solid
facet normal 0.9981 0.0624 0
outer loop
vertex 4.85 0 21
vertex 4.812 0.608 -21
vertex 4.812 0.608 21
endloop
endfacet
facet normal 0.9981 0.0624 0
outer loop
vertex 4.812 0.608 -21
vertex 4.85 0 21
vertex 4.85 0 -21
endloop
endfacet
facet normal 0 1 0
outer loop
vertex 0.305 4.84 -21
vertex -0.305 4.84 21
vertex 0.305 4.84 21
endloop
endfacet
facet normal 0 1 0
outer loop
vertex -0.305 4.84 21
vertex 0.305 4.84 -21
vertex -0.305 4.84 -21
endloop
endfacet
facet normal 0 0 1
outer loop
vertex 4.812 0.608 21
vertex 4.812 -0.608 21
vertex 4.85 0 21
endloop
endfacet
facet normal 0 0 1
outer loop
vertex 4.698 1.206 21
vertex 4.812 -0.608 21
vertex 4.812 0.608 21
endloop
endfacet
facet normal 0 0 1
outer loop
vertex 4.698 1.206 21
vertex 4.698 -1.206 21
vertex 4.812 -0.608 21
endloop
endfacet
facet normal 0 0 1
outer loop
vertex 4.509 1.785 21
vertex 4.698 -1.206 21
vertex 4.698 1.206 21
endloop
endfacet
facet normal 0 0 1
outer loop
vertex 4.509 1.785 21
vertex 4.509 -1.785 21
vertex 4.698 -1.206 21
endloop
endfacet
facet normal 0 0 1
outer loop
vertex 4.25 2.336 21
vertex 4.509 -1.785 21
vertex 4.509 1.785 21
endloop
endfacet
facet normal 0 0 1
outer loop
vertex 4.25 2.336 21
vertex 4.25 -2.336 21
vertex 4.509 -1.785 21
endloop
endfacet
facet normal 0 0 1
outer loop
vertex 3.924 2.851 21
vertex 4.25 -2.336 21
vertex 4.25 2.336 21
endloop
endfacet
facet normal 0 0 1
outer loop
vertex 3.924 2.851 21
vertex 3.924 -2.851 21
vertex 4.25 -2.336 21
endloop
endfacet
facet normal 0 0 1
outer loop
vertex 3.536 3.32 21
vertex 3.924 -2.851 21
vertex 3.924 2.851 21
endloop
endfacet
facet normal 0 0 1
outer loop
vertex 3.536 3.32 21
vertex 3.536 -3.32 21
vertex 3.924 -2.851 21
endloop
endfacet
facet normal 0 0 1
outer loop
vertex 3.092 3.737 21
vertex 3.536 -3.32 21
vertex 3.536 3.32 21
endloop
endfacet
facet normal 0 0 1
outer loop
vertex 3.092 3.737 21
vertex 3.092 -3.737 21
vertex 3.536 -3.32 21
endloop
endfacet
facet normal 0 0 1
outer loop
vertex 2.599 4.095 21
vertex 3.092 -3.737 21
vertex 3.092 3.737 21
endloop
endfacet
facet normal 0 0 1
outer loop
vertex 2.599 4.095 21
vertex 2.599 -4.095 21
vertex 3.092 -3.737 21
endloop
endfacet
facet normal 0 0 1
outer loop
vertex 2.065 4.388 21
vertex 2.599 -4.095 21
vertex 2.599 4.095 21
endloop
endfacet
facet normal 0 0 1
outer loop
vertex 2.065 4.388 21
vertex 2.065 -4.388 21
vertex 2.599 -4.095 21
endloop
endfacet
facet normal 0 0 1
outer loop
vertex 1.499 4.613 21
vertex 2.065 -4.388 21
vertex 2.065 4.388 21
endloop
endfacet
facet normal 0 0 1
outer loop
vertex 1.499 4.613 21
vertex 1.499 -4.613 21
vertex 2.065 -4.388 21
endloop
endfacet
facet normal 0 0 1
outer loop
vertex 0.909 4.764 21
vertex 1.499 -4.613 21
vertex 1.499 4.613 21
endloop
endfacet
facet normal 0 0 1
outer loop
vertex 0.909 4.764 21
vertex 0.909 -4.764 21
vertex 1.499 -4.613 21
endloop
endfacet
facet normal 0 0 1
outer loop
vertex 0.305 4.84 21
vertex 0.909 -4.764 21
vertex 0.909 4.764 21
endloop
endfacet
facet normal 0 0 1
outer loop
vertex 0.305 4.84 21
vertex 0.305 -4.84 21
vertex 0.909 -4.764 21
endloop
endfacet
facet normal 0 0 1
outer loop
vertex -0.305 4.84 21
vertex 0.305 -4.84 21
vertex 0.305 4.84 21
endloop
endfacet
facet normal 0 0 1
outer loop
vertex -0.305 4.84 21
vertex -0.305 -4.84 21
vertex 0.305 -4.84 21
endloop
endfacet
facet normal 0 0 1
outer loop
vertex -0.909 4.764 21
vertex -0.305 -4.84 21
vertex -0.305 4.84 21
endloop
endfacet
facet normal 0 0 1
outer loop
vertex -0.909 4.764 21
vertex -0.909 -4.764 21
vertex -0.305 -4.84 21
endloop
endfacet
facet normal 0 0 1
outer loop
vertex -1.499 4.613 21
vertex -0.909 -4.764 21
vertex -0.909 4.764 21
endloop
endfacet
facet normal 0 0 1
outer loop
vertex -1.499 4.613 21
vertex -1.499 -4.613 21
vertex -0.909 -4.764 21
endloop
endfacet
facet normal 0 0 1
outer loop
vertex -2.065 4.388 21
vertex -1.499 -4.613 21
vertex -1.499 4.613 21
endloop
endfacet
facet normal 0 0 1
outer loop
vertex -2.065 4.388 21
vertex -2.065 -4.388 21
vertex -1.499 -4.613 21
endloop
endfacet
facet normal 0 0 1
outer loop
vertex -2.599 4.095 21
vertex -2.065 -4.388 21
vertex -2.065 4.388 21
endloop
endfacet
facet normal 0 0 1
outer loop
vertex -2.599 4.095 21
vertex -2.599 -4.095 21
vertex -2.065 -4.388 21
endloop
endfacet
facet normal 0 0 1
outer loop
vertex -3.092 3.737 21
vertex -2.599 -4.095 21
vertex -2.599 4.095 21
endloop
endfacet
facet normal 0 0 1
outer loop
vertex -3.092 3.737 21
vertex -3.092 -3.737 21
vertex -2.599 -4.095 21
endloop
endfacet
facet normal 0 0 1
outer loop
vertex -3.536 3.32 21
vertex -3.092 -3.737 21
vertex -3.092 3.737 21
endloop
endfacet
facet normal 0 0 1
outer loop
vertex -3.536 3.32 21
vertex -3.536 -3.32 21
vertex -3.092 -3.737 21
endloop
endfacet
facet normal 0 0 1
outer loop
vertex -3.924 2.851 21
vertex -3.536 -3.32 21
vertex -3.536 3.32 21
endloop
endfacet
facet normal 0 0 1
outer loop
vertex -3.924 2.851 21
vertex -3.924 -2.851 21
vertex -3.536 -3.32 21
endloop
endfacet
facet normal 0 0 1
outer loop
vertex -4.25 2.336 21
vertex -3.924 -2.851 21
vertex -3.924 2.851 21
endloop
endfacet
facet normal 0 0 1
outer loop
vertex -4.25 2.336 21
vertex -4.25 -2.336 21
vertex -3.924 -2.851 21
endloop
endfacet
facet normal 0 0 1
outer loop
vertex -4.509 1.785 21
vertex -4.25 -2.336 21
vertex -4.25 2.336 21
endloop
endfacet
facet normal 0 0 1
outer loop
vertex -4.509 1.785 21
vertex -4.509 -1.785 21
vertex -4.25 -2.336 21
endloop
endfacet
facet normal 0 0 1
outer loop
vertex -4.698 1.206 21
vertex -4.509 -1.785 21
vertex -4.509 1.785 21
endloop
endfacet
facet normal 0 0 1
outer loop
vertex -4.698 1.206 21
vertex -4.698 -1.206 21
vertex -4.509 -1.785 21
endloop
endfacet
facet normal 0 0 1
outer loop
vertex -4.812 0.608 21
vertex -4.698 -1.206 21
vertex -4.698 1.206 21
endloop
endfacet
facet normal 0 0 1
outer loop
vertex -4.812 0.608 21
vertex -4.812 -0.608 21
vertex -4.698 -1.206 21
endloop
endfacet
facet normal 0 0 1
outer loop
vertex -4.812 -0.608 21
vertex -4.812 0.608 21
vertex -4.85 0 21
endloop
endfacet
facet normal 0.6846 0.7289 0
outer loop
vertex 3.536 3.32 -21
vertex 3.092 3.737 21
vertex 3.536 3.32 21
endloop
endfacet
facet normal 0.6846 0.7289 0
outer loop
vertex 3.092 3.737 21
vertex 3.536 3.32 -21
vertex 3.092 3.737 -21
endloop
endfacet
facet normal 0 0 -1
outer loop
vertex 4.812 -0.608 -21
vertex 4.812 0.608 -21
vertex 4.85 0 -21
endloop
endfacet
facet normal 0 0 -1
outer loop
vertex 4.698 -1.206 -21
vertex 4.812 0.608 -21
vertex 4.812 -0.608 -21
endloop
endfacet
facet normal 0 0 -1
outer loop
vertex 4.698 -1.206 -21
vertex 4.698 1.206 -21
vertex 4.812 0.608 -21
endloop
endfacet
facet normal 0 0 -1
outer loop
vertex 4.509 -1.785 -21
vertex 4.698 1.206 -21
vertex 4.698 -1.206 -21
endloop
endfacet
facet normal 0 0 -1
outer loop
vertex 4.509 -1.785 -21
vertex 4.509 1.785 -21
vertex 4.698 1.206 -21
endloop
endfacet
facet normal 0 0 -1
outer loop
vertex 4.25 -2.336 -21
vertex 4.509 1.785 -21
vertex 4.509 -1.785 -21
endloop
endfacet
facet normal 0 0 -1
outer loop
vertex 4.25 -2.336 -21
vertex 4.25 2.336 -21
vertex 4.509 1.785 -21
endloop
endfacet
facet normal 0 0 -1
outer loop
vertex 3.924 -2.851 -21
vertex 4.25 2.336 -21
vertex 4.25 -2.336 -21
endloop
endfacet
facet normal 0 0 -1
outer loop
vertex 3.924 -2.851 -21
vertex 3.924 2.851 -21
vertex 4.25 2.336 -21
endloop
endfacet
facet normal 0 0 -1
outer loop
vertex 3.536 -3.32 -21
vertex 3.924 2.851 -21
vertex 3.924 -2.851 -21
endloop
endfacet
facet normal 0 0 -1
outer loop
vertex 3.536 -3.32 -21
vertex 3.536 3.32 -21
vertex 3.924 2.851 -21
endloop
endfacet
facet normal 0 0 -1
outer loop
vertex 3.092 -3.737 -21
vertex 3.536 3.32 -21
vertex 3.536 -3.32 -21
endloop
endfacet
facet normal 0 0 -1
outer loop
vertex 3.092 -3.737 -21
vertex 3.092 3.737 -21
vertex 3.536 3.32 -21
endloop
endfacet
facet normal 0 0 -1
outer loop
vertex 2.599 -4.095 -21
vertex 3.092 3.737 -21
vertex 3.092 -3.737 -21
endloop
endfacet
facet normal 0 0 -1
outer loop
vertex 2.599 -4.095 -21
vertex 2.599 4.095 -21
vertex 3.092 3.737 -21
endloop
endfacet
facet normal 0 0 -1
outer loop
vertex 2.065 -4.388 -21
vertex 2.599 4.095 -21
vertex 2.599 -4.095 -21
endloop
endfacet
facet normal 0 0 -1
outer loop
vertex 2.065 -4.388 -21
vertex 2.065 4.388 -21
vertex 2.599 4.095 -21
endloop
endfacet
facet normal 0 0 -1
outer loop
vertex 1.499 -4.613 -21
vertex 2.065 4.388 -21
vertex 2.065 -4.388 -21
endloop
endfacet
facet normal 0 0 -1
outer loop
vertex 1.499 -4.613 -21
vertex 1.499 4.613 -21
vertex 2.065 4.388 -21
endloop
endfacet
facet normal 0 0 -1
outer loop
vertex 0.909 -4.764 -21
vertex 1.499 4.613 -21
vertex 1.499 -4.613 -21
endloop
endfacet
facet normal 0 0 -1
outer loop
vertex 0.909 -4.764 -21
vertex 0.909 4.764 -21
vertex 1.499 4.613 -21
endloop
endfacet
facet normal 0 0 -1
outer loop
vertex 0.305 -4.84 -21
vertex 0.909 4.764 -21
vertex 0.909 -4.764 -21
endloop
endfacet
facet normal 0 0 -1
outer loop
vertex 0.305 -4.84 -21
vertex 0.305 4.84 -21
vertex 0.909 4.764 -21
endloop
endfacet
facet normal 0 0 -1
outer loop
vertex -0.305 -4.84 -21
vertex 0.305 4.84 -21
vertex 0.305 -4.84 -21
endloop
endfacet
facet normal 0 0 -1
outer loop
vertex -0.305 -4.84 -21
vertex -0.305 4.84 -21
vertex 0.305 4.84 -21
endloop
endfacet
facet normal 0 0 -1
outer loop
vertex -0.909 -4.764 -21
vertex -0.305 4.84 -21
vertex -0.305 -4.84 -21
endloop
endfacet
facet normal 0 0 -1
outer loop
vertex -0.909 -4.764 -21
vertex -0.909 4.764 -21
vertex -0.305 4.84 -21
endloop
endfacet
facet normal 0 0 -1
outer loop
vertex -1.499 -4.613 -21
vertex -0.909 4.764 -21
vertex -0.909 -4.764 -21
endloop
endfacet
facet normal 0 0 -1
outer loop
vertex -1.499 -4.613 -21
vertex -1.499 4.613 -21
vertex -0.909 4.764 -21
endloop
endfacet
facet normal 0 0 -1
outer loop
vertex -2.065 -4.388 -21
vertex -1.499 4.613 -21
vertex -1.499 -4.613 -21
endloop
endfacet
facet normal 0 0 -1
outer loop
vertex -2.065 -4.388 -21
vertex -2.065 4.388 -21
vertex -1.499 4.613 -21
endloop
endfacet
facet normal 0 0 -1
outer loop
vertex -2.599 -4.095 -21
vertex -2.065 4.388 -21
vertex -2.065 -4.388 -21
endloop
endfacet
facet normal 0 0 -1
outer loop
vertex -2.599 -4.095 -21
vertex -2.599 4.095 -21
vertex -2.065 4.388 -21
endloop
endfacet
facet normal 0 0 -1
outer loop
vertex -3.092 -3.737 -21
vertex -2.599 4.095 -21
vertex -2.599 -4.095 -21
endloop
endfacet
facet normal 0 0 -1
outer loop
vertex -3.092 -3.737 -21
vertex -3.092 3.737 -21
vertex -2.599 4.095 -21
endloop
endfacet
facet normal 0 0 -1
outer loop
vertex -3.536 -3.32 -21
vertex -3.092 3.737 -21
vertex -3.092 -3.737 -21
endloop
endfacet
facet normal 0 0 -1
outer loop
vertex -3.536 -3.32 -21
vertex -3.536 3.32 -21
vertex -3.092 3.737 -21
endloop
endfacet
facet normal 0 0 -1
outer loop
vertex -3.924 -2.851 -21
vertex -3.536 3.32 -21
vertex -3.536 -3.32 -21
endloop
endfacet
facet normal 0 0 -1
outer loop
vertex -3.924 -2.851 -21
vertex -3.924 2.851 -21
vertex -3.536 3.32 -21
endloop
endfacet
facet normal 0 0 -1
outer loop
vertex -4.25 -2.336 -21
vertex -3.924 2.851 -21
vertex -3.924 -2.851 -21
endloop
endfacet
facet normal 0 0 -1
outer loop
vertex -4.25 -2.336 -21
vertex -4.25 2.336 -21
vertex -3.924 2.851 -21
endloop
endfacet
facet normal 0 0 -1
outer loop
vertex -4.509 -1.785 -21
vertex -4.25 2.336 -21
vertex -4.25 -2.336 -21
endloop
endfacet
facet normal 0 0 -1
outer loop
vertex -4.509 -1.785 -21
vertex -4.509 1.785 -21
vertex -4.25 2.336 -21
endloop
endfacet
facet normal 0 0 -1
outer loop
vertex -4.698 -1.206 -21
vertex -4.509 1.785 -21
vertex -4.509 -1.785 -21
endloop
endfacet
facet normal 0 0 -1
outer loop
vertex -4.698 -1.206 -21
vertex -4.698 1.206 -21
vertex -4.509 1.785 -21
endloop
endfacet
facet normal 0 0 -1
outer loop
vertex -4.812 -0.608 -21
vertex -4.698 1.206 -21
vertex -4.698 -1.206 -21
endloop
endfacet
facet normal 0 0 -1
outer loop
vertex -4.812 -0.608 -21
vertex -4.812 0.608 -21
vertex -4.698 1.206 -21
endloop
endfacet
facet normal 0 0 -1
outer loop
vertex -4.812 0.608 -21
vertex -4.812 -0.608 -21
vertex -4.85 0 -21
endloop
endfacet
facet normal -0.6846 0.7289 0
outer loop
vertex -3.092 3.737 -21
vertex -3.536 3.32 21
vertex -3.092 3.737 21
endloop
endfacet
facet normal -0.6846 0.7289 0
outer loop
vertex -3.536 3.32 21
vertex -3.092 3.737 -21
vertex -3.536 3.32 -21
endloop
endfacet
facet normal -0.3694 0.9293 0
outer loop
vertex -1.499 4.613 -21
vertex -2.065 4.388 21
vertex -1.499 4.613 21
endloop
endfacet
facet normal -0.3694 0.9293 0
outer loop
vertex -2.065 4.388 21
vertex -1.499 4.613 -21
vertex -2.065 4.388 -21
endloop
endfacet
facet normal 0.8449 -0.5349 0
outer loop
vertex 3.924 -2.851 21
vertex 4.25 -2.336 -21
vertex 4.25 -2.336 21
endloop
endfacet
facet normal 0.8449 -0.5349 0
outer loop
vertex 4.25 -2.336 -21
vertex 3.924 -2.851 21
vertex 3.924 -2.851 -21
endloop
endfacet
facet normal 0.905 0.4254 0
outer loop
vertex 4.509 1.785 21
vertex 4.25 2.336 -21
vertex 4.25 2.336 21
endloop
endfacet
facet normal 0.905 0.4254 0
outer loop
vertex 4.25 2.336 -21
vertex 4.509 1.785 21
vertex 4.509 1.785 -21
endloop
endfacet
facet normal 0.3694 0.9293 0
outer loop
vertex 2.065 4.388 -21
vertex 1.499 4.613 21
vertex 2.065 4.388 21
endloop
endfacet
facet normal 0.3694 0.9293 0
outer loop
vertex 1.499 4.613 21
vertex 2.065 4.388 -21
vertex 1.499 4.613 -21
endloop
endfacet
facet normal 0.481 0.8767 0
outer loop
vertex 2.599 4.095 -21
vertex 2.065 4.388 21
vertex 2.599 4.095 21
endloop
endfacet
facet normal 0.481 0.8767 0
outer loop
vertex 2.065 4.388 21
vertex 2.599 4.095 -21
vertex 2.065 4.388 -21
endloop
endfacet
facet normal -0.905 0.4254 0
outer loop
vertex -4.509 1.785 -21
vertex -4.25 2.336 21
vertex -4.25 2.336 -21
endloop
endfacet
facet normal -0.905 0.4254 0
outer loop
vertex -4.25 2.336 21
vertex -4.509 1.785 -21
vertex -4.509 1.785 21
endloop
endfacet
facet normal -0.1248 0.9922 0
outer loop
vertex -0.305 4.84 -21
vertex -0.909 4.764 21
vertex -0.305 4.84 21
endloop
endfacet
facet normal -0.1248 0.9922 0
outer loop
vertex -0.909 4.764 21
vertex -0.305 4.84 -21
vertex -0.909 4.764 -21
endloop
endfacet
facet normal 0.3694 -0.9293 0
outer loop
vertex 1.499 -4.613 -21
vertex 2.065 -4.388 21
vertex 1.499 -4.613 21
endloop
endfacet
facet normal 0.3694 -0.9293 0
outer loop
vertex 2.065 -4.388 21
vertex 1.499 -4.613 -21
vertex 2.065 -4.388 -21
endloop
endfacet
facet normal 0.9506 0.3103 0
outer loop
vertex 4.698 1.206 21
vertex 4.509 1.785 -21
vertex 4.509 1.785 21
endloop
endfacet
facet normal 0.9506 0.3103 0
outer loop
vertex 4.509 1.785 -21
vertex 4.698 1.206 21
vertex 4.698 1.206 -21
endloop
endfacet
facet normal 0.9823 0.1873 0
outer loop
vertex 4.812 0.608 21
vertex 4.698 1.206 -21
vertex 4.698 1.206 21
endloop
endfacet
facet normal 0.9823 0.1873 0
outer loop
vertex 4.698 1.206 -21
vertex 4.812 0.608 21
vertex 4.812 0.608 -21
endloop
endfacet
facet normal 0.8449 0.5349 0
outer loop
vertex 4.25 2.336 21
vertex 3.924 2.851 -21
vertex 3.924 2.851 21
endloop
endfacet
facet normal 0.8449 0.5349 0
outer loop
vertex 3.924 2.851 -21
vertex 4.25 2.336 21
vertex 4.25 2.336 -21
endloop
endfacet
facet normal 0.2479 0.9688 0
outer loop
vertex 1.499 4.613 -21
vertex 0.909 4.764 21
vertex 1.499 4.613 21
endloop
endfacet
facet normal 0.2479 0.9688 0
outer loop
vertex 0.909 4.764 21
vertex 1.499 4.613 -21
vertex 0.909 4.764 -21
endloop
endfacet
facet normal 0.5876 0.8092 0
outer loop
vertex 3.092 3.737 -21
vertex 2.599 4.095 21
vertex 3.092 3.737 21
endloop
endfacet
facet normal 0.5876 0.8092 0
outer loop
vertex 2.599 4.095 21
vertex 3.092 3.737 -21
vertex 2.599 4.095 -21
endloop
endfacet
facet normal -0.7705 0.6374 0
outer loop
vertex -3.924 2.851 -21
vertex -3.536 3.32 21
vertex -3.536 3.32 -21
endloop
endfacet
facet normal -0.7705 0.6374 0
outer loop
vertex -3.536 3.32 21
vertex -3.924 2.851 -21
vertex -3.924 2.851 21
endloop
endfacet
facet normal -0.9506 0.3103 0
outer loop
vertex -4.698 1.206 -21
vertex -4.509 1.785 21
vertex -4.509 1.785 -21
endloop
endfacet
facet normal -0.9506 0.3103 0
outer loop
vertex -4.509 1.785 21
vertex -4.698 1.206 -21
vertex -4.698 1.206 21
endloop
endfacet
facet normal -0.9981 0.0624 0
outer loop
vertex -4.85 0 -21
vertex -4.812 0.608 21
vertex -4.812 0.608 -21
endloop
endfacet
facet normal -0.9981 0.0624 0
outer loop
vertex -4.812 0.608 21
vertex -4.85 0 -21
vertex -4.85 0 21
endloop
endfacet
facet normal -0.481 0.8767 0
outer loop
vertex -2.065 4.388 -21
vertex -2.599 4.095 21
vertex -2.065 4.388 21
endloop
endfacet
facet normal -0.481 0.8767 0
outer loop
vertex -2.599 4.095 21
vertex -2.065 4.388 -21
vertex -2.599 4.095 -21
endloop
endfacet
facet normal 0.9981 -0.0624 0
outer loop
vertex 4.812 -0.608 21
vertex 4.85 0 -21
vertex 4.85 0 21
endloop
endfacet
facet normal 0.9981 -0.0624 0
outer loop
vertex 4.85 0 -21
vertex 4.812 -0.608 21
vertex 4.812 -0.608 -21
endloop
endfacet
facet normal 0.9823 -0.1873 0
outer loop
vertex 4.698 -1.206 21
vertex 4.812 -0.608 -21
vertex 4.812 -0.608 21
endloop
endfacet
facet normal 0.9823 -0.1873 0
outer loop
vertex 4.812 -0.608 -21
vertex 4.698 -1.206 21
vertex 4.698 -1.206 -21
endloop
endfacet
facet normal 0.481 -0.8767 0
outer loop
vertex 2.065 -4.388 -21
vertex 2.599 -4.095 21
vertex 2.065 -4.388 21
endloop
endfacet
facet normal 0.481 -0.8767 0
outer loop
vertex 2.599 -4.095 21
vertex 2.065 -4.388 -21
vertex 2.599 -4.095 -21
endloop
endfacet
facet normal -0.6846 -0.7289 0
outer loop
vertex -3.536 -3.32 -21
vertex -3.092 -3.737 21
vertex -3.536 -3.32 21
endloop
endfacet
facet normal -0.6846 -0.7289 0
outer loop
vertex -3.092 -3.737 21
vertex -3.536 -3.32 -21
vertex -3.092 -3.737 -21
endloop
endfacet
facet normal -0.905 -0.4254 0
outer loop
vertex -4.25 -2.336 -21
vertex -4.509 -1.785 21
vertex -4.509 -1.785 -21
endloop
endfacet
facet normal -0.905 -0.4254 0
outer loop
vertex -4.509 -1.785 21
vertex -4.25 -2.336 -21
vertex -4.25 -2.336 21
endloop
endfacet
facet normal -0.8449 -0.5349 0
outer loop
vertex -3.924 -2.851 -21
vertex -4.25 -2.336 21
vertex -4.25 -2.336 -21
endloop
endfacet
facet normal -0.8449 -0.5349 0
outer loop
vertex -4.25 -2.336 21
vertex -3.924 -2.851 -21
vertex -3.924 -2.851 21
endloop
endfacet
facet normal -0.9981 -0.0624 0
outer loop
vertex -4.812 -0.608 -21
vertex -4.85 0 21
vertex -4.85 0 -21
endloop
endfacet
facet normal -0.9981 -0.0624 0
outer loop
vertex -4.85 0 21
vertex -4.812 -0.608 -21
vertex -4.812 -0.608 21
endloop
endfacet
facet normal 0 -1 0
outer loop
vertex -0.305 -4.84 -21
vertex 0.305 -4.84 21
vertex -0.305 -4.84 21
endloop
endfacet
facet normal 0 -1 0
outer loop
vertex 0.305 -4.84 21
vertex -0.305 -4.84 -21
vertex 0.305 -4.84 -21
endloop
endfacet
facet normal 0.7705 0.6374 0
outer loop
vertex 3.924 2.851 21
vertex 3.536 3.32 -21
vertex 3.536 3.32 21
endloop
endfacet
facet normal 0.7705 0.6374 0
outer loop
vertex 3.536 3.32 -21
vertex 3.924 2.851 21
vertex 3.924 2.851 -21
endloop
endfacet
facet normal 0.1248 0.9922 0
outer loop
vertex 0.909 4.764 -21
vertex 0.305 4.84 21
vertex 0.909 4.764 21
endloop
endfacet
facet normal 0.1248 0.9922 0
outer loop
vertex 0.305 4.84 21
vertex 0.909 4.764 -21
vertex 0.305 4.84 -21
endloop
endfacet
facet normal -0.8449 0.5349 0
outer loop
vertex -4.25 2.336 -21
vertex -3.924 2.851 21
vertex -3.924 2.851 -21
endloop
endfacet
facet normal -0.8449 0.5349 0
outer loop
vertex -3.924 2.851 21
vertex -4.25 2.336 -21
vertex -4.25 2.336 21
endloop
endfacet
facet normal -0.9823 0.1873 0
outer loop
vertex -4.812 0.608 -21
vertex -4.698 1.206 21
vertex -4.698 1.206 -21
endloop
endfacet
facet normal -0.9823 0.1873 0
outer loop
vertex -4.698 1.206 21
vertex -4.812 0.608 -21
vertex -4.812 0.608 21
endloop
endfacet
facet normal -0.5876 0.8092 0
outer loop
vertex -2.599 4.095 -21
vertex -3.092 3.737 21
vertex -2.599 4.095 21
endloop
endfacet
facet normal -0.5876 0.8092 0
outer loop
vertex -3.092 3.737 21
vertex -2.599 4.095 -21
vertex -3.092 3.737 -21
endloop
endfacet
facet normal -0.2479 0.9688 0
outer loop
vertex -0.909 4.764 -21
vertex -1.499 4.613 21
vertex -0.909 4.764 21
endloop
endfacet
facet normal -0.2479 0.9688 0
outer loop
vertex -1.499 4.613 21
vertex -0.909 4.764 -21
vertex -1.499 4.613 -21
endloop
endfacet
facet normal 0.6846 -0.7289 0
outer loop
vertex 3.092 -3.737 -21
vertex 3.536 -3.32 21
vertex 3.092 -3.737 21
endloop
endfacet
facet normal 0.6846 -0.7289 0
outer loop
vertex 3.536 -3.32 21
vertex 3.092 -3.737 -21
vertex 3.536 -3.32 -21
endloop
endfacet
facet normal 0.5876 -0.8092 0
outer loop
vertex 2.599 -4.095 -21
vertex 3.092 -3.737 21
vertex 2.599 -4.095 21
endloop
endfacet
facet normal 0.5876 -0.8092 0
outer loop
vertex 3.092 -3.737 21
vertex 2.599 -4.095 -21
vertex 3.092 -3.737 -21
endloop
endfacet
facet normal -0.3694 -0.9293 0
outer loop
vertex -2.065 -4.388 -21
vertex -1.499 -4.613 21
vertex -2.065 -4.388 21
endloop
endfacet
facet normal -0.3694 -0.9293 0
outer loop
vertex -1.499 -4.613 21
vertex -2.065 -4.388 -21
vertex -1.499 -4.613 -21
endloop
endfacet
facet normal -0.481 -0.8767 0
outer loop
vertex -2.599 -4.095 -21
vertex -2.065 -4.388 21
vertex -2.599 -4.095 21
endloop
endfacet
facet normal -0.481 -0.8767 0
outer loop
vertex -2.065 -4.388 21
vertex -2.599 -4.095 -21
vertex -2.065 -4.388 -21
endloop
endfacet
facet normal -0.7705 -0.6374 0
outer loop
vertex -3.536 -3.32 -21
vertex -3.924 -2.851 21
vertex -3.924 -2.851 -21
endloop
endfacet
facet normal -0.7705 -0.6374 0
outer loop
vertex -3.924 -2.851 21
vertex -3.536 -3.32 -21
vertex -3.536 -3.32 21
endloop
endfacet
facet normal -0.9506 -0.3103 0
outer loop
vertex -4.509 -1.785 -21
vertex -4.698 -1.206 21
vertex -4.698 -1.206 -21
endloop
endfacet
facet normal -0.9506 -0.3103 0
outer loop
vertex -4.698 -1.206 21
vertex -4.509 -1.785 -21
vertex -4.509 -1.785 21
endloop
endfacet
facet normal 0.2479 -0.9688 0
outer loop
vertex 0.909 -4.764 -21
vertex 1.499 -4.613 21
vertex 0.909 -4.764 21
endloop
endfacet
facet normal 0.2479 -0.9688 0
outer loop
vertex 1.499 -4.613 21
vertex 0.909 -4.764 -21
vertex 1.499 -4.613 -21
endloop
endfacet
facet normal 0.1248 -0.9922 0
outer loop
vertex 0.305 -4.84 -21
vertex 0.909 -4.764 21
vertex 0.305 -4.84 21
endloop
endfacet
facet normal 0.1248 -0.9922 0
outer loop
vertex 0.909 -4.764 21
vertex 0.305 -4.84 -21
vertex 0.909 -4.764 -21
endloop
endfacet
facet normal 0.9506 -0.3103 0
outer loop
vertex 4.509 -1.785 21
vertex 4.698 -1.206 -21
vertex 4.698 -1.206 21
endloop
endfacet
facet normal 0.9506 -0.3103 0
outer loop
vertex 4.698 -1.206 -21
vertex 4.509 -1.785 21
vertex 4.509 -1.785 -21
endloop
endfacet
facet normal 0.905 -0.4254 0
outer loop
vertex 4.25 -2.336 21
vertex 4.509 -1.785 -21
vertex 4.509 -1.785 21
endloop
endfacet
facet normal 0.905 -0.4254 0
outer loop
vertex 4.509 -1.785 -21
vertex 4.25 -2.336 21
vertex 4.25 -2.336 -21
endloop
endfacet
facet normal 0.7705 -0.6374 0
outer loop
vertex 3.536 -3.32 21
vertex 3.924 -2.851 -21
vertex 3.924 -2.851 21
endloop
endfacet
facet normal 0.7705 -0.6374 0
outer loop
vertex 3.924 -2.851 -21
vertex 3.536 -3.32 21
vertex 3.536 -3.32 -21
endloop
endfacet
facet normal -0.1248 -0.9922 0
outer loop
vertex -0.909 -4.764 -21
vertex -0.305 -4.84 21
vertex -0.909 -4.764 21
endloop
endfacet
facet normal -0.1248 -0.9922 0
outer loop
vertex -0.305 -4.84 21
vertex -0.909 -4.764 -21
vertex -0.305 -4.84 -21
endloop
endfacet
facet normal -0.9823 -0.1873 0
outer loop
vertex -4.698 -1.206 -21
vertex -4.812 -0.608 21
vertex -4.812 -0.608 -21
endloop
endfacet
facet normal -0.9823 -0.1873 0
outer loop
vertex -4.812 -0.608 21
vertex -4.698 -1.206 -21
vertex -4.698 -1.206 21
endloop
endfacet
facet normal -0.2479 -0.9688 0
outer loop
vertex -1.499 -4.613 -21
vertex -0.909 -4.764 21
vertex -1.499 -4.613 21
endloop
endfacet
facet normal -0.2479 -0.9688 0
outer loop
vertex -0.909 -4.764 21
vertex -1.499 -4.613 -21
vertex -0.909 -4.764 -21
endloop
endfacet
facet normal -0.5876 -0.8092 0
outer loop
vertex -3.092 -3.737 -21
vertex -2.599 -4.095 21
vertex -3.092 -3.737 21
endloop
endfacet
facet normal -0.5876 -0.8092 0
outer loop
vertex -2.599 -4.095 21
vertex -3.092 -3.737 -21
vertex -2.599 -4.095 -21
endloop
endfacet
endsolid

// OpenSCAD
$fn = 50;


difference() {
	union() {
		translate(v = [0, 0, -21.0000000000]) {
			cylinder(h = 42, r = 4.8500000000);
		}
	}
	union() {
		translate(v = [0, 0, -100.0000000000]) {
			cylinder(h = 200, r = 0);
		}
	}
}
